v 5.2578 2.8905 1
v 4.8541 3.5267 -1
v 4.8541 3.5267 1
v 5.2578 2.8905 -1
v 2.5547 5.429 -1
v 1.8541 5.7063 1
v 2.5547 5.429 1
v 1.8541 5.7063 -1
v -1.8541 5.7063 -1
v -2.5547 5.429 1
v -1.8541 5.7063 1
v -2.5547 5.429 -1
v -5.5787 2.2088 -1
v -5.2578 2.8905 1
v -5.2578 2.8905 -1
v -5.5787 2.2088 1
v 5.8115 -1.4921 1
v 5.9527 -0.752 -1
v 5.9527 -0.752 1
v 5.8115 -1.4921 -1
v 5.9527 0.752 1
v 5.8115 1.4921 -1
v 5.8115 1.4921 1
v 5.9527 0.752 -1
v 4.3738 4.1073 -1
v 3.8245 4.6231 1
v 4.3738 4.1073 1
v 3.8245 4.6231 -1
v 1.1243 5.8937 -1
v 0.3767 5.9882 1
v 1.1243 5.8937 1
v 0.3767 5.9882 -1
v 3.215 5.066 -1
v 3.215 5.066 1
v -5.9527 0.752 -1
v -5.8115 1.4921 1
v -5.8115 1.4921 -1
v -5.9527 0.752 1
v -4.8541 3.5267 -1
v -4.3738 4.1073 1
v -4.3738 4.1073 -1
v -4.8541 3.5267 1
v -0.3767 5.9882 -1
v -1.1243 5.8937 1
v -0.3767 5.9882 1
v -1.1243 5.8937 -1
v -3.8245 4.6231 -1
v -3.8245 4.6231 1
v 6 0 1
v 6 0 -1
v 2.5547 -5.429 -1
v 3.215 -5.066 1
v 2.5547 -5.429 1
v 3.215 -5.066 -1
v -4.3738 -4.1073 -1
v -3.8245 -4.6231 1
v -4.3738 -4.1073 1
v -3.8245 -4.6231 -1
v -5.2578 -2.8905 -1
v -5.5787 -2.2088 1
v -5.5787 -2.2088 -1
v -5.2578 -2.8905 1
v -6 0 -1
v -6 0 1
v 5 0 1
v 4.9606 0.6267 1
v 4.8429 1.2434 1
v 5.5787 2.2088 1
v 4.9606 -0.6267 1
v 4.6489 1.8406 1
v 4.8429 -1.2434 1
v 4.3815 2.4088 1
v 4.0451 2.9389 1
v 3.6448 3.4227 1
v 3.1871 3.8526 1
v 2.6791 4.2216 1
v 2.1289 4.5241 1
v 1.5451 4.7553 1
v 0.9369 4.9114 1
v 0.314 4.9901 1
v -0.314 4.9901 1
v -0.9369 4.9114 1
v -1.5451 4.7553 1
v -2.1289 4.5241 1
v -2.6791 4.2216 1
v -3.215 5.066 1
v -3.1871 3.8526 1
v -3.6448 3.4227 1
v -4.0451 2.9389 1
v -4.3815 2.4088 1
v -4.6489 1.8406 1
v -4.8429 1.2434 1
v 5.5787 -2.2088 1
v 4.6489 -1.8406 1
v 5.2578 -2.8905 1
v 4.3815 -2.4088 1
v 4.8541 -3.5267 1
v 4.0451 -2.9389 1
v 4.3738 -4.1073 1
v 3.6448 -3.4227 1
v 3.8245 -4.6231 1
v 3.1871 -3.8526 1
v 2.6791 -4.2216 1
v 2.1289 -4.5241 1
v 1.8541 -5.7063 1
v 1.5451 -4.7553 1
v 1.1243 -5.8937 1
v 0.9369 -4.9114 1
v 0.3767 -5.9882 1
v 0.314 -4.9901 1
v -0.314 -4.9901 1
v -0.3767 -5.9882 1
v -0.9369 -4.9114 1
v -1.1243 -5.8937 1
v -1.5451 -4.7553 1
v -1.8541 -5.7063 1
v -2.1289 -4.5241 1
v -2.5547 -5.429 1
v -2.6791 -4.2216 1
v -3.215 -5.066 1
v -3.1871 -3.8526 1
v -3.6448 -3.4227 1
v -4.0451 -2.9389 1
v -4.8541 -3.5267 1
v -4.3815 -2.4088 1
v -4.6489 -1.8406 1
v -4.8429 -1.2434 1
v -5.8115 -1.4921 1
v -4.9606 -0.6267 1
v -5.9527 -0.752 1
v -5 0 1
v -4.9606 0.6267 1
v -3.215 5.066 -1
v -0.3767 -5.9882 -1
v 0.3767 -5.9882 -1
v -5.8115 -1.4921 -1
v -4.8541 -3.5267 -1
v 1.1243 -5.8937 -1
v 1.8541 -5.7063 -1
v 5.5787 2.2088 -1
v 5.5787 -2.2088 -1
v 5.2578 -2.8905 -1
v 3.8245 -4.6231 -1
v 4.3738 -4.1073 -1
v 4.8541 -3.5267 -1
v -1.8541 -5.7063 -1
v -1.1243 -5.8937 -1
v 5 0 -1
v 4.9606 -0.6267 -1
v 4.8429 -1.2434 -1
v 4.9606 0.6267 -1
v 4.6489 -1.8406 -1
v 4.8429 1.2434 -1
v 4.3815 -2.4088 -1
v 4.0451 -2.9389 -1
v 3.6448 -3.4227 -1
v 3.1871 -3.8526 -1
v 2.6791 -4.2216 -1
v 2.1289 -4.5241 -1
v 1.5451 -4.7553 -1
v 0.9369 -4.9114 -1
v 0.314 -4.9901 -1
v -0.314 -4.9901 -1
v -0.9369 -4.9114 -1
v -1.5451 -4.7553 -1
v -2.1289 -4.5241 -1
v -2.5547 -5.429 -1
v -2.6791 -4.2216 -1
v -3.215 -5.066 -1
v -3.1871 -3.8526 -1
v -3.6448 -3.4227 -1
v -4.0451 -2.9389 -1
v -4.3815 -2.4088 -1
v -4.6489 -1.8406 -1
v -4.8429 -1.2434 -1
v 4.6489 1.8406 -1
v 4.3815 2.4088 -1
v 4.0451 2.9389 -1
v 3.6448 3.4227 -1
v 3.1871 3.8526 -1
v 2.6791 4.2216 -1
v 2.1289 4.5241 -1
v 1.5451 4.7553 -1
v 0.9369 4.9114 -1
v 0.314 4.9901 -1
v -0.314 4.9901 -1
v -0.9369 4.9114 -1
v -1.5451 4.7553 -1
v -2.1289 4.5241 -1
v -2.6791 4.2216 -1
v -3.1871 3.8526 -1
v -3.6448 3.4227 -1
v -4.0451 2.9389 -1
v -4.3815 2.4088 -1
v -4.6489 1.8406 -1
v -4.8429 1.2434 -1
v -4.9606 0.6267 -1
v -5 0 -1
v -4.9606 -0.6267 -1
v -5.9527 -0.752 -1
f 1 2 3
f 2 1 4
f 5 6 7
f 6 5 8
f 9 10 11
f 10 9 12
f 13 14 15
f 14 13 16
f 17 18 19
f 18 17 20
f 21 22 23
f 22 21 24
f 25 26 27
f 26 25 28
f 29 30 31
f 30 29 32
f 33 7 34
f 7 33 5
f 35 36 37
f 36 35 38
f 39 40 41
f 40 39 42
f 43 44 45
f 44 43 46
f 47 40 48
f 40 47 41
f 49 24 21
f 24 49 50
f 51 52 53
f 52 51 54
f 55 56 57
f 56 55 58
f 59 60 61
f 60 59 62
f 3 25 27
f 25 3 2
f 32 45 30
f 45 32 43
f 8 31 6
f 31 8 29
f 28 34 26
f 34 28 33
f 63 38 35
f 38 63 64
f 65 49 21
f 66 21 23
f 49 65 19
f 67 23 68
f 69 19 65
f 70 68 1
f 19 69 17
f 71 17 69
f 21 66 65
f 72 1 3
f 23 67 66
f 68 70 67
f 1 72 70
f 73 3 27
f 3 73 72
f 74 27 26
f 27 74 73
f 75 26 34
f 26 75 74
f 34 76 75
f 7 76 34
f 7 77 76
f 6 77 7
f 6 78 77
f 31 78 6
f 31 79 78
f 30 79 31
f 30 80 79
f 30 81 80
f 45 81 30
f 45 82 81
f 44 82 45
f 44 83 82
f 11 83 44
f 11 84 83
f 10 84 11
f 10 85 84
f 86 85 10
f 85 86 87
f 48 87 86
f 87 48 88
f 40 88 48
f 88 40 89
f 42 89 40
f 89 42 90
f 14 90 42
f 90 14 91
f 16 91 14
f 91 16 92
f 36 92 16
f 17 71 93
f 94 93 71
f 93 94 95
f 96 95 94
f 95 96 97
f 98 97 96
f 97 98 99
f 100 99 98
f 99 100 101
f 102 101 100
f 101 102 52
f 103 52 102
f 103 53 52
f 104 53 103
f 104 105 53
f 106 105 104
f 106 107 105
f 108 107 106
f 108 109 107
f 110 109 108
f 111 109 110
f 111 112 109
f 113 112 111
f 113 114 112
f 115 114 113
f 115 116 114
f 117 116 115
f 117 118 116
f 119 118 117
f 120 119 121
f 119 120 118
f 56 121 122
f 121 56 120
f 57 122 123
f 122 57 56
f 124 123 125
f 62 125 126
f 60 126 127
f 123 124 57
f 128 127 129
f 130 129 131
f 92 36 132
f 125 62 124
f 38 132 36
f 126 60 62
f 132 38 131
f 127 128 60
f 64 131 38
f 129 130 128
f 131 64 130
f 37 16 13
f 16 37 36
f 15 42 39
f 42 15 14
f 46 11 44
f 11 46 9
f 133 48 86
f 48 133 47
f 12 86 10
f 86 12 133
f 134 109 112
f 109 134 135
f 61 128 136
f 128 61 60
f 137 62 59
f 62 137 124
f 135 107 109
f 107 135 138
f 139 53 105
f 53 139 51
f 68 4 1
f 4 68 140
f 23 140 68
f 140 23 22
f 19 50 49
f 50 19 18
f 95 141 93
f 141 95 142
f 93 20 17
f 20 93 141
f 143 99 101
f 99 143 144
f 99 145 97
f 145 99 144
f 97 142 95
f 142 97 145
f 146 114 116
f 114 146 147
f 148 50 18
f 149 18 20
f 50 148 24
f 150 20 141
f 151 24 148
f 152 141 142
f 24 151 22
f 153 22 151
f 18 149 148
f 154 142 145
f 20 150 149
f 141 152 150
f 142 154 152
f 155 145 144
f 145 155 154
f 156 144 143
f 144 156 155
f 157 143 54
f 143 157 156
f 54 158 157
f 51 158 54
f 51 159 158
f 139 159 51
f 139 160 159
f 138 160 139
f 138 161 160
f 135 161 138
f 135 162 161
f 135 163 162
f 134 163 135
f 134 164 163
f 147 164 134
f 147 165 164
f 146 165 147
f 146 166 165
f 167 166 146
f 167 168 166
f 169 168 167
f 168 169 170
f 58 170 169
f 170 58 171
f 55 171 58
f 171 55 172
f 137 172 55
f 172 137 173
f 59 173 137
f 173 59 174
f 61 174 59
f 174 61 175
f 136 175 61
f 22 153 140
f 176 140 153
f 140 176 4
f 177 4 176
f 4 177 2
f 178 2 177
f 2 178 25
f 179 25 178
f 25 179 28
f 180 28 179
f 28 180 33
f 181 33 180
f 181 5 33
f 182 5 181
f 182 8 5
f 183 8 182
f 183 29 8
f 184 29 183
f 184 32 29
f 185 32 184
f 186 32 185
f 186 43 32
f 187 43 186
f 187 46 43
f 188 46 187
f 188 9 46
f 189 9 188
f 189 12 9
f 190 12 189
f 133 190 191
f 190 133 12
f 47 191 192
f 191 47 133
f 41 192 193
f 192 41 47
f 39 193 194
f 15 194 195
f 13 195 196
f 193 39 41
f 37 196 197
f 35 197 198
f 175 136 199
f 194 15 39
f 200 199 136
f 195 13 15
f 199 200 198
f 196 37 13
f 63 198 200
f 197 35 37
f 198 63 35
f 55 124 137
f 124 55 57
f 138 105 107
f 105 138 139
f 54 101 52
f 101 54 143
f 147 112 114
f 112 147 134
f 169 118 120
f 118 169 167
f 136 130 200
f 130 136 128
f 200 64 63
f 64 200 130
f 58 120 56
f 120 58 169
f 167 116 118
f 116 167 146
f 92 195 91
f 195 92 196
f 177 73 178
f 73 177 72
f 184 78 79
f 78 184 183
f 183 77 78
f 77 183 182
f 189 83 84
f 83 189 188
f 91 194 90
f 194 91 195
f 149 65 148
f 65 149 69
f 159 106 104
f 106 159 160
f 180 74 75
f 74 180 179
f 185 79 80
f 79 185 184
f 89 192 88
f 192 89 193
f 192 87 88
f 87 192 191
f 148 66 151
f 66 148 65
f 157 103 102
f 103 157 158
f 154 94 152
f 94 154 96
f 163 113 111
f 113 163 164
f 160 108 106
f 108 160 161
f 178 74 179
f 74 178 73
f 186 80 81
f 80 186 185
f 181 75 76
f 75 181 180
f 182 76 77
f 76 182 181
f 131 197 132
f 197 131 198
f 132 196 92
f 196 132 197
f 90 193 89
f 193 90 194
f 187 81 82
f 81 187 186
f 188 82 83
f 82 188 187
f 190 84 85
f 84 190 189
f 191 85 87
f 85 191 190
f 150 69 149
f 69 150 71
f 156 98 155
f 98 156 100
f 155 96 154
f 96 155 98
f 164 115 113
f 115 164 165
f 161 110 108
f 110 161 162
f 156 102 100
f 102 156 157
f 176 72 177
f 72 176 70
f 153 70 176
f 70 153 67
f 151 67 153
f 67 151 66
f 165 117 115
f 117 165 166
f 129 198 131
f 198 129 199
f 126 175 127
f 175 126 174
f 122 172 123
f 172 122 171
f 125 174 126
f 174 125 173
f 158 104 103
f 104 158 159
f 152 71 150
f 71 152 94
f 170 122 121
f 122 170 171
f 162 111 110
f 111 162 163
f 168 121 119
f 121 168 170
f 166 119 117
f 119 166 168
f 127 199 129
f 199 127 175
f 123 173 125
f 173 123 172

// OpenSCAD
$fn = 50;


difference() {
	union() {
		translate(v = [0, 0, -1.0000000000]) {
			cylinder(h = 2, r = 6.0000000000);
		}
	}
	union() {
		translate(v = [0, 0, -100.0000000000]) {
			cylinder(h = 200, r = 5);
		}
	}
}
